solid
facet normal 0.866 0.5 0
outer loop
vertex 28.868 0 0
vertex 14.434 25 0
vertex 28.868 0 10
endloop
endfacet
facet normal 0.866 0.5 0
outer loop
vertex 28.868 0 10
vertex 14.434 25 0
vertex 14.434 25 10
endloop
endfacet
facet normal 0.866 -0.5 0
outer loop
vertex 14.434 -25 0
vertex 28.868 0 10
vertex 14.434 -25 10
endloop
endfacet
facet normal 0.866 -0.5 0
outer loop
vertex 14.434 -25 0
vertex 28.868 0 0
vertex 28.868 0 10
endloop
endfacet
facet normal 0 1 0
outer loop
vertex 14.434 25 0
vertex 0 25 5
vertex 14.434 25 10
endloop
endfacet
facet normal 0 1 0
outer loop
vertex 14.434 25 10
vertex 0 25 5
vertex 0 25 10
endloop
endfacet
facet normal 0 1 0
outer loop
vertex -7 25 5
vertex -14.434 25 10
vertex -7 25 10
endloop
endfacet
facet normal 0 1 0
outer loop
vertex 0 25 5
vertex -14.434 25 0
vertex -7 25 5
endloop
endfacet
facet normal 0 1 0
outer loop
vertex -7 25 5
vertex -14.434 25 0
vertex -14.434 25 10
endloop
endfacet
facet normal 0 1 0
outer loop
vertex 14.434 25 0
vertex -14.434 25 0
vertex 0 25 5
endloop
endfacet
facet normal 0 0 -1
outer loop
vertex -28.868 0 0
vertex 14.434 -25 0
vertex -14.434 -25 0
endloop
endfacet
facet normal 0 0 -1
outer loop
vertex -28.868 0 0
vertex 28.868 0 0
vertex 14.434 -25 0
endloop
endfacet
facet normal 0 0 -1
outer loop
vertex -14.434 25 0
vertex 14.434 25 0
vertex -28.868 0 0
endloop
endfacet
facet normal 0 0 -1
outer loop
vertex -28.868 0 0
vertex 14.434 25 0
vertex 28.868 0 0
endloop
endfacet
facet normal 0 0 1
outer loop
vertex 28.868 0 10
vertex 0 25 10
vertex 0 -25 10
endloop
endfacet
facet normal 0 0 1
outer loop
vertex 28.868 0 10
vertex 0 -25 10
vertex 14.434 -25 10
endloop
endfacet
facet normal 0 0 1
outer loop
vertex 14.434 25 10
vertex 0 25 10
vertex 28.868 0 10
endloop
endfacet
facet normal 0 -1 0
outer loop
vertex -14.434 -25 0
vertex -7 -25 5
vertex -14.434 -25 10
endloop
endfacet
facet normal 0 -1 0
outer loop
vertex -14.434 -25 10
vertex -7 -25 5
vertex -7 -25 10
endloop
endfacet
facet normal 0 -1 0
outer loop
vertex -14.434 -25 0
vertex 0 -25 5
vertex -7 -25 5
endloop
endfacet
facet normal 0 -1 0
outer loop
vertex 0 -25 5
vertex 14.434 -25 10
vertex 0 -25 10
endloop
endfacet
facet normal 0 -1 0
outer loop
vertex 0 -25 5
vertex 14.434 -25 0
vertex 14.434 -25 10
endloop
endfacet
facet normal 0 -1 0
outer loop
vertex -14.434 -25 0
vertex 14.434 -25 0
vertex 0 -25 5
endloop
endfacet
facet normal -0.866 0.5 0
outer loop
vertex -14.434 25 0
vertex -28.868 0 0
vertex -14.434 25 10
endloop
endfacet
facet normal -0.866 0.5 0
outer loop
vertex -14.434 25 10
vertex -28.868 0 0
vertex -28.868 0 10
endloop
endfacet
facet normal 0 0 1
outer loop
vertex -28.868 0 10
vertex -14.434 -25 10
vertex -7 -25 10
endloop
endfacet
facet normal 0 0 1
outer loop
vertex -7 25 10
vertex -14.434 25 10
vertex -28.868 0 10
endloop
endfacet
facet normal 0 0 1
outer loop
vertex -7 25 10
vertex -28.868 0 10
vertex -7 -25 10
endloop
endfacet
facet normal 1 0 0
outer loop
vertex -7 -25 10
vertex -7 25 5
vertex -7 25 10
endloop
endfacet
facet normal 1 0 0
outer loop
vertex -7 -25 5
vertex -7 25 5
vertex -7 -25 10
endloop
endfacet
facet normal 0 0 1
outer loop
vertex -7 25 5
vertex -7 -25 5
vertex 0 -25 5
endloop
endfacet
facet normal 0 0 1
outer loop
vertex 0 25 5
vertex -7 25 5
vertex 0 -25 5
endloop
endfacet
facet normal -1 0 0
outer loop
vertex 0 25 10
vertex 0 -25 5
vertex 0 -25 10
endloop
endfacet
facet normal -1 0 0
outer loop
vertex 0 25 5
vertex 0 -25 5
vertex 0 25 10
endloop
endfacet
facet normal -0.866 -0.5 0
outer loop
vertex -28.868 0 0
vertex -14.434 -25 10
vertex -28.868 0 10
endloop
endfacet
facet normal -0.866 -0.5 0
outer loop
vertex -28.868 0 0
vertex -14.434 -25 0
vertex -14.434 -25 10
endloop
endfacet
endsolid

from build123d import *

# Parameters (mm, degrees)
SKETCH001_W           = 7
SKETCH001_H           = 60
EXTRUDE001_DEPTH      = 1
EXTRUDE001_DEPTH_BACK = 5
EXTRUDE_DEPTH         = 10


with BuildPart() as extrude001:
    # Sketch001 (on Face8 of Extrude) → Extrude001 (new body, two sides)
    with BuildSketch(Plane.XY.offset(10)) as extrude001_sk:
        with Locations((-3.5, 0)):
            Rectangle(SKETCH001_W, SKETCH001_H)
    extrude(amount=EXTRUDE001_DEPTH)
    extrude(extrude001_sk.sketch, amount=-EXTRUDE001_DEPTH_BACK)


with BuildPart() as cut:
    # Sketch → Extrude (new body)
    with BuildSketch(Plane.XY):
        Polygon((28.867513, 0), (14.433757, 25), (-14.433757, 25), (-28.867513, 0), (-14.433757, -25), (14.433757, -25), align=None)
    extrude(amount=EXTRUDE_DEPTH)

    # Cut: cut Extrude001
    add(extrude001.part, mode=Mode.SUBTRACT)


solid = cut.part
